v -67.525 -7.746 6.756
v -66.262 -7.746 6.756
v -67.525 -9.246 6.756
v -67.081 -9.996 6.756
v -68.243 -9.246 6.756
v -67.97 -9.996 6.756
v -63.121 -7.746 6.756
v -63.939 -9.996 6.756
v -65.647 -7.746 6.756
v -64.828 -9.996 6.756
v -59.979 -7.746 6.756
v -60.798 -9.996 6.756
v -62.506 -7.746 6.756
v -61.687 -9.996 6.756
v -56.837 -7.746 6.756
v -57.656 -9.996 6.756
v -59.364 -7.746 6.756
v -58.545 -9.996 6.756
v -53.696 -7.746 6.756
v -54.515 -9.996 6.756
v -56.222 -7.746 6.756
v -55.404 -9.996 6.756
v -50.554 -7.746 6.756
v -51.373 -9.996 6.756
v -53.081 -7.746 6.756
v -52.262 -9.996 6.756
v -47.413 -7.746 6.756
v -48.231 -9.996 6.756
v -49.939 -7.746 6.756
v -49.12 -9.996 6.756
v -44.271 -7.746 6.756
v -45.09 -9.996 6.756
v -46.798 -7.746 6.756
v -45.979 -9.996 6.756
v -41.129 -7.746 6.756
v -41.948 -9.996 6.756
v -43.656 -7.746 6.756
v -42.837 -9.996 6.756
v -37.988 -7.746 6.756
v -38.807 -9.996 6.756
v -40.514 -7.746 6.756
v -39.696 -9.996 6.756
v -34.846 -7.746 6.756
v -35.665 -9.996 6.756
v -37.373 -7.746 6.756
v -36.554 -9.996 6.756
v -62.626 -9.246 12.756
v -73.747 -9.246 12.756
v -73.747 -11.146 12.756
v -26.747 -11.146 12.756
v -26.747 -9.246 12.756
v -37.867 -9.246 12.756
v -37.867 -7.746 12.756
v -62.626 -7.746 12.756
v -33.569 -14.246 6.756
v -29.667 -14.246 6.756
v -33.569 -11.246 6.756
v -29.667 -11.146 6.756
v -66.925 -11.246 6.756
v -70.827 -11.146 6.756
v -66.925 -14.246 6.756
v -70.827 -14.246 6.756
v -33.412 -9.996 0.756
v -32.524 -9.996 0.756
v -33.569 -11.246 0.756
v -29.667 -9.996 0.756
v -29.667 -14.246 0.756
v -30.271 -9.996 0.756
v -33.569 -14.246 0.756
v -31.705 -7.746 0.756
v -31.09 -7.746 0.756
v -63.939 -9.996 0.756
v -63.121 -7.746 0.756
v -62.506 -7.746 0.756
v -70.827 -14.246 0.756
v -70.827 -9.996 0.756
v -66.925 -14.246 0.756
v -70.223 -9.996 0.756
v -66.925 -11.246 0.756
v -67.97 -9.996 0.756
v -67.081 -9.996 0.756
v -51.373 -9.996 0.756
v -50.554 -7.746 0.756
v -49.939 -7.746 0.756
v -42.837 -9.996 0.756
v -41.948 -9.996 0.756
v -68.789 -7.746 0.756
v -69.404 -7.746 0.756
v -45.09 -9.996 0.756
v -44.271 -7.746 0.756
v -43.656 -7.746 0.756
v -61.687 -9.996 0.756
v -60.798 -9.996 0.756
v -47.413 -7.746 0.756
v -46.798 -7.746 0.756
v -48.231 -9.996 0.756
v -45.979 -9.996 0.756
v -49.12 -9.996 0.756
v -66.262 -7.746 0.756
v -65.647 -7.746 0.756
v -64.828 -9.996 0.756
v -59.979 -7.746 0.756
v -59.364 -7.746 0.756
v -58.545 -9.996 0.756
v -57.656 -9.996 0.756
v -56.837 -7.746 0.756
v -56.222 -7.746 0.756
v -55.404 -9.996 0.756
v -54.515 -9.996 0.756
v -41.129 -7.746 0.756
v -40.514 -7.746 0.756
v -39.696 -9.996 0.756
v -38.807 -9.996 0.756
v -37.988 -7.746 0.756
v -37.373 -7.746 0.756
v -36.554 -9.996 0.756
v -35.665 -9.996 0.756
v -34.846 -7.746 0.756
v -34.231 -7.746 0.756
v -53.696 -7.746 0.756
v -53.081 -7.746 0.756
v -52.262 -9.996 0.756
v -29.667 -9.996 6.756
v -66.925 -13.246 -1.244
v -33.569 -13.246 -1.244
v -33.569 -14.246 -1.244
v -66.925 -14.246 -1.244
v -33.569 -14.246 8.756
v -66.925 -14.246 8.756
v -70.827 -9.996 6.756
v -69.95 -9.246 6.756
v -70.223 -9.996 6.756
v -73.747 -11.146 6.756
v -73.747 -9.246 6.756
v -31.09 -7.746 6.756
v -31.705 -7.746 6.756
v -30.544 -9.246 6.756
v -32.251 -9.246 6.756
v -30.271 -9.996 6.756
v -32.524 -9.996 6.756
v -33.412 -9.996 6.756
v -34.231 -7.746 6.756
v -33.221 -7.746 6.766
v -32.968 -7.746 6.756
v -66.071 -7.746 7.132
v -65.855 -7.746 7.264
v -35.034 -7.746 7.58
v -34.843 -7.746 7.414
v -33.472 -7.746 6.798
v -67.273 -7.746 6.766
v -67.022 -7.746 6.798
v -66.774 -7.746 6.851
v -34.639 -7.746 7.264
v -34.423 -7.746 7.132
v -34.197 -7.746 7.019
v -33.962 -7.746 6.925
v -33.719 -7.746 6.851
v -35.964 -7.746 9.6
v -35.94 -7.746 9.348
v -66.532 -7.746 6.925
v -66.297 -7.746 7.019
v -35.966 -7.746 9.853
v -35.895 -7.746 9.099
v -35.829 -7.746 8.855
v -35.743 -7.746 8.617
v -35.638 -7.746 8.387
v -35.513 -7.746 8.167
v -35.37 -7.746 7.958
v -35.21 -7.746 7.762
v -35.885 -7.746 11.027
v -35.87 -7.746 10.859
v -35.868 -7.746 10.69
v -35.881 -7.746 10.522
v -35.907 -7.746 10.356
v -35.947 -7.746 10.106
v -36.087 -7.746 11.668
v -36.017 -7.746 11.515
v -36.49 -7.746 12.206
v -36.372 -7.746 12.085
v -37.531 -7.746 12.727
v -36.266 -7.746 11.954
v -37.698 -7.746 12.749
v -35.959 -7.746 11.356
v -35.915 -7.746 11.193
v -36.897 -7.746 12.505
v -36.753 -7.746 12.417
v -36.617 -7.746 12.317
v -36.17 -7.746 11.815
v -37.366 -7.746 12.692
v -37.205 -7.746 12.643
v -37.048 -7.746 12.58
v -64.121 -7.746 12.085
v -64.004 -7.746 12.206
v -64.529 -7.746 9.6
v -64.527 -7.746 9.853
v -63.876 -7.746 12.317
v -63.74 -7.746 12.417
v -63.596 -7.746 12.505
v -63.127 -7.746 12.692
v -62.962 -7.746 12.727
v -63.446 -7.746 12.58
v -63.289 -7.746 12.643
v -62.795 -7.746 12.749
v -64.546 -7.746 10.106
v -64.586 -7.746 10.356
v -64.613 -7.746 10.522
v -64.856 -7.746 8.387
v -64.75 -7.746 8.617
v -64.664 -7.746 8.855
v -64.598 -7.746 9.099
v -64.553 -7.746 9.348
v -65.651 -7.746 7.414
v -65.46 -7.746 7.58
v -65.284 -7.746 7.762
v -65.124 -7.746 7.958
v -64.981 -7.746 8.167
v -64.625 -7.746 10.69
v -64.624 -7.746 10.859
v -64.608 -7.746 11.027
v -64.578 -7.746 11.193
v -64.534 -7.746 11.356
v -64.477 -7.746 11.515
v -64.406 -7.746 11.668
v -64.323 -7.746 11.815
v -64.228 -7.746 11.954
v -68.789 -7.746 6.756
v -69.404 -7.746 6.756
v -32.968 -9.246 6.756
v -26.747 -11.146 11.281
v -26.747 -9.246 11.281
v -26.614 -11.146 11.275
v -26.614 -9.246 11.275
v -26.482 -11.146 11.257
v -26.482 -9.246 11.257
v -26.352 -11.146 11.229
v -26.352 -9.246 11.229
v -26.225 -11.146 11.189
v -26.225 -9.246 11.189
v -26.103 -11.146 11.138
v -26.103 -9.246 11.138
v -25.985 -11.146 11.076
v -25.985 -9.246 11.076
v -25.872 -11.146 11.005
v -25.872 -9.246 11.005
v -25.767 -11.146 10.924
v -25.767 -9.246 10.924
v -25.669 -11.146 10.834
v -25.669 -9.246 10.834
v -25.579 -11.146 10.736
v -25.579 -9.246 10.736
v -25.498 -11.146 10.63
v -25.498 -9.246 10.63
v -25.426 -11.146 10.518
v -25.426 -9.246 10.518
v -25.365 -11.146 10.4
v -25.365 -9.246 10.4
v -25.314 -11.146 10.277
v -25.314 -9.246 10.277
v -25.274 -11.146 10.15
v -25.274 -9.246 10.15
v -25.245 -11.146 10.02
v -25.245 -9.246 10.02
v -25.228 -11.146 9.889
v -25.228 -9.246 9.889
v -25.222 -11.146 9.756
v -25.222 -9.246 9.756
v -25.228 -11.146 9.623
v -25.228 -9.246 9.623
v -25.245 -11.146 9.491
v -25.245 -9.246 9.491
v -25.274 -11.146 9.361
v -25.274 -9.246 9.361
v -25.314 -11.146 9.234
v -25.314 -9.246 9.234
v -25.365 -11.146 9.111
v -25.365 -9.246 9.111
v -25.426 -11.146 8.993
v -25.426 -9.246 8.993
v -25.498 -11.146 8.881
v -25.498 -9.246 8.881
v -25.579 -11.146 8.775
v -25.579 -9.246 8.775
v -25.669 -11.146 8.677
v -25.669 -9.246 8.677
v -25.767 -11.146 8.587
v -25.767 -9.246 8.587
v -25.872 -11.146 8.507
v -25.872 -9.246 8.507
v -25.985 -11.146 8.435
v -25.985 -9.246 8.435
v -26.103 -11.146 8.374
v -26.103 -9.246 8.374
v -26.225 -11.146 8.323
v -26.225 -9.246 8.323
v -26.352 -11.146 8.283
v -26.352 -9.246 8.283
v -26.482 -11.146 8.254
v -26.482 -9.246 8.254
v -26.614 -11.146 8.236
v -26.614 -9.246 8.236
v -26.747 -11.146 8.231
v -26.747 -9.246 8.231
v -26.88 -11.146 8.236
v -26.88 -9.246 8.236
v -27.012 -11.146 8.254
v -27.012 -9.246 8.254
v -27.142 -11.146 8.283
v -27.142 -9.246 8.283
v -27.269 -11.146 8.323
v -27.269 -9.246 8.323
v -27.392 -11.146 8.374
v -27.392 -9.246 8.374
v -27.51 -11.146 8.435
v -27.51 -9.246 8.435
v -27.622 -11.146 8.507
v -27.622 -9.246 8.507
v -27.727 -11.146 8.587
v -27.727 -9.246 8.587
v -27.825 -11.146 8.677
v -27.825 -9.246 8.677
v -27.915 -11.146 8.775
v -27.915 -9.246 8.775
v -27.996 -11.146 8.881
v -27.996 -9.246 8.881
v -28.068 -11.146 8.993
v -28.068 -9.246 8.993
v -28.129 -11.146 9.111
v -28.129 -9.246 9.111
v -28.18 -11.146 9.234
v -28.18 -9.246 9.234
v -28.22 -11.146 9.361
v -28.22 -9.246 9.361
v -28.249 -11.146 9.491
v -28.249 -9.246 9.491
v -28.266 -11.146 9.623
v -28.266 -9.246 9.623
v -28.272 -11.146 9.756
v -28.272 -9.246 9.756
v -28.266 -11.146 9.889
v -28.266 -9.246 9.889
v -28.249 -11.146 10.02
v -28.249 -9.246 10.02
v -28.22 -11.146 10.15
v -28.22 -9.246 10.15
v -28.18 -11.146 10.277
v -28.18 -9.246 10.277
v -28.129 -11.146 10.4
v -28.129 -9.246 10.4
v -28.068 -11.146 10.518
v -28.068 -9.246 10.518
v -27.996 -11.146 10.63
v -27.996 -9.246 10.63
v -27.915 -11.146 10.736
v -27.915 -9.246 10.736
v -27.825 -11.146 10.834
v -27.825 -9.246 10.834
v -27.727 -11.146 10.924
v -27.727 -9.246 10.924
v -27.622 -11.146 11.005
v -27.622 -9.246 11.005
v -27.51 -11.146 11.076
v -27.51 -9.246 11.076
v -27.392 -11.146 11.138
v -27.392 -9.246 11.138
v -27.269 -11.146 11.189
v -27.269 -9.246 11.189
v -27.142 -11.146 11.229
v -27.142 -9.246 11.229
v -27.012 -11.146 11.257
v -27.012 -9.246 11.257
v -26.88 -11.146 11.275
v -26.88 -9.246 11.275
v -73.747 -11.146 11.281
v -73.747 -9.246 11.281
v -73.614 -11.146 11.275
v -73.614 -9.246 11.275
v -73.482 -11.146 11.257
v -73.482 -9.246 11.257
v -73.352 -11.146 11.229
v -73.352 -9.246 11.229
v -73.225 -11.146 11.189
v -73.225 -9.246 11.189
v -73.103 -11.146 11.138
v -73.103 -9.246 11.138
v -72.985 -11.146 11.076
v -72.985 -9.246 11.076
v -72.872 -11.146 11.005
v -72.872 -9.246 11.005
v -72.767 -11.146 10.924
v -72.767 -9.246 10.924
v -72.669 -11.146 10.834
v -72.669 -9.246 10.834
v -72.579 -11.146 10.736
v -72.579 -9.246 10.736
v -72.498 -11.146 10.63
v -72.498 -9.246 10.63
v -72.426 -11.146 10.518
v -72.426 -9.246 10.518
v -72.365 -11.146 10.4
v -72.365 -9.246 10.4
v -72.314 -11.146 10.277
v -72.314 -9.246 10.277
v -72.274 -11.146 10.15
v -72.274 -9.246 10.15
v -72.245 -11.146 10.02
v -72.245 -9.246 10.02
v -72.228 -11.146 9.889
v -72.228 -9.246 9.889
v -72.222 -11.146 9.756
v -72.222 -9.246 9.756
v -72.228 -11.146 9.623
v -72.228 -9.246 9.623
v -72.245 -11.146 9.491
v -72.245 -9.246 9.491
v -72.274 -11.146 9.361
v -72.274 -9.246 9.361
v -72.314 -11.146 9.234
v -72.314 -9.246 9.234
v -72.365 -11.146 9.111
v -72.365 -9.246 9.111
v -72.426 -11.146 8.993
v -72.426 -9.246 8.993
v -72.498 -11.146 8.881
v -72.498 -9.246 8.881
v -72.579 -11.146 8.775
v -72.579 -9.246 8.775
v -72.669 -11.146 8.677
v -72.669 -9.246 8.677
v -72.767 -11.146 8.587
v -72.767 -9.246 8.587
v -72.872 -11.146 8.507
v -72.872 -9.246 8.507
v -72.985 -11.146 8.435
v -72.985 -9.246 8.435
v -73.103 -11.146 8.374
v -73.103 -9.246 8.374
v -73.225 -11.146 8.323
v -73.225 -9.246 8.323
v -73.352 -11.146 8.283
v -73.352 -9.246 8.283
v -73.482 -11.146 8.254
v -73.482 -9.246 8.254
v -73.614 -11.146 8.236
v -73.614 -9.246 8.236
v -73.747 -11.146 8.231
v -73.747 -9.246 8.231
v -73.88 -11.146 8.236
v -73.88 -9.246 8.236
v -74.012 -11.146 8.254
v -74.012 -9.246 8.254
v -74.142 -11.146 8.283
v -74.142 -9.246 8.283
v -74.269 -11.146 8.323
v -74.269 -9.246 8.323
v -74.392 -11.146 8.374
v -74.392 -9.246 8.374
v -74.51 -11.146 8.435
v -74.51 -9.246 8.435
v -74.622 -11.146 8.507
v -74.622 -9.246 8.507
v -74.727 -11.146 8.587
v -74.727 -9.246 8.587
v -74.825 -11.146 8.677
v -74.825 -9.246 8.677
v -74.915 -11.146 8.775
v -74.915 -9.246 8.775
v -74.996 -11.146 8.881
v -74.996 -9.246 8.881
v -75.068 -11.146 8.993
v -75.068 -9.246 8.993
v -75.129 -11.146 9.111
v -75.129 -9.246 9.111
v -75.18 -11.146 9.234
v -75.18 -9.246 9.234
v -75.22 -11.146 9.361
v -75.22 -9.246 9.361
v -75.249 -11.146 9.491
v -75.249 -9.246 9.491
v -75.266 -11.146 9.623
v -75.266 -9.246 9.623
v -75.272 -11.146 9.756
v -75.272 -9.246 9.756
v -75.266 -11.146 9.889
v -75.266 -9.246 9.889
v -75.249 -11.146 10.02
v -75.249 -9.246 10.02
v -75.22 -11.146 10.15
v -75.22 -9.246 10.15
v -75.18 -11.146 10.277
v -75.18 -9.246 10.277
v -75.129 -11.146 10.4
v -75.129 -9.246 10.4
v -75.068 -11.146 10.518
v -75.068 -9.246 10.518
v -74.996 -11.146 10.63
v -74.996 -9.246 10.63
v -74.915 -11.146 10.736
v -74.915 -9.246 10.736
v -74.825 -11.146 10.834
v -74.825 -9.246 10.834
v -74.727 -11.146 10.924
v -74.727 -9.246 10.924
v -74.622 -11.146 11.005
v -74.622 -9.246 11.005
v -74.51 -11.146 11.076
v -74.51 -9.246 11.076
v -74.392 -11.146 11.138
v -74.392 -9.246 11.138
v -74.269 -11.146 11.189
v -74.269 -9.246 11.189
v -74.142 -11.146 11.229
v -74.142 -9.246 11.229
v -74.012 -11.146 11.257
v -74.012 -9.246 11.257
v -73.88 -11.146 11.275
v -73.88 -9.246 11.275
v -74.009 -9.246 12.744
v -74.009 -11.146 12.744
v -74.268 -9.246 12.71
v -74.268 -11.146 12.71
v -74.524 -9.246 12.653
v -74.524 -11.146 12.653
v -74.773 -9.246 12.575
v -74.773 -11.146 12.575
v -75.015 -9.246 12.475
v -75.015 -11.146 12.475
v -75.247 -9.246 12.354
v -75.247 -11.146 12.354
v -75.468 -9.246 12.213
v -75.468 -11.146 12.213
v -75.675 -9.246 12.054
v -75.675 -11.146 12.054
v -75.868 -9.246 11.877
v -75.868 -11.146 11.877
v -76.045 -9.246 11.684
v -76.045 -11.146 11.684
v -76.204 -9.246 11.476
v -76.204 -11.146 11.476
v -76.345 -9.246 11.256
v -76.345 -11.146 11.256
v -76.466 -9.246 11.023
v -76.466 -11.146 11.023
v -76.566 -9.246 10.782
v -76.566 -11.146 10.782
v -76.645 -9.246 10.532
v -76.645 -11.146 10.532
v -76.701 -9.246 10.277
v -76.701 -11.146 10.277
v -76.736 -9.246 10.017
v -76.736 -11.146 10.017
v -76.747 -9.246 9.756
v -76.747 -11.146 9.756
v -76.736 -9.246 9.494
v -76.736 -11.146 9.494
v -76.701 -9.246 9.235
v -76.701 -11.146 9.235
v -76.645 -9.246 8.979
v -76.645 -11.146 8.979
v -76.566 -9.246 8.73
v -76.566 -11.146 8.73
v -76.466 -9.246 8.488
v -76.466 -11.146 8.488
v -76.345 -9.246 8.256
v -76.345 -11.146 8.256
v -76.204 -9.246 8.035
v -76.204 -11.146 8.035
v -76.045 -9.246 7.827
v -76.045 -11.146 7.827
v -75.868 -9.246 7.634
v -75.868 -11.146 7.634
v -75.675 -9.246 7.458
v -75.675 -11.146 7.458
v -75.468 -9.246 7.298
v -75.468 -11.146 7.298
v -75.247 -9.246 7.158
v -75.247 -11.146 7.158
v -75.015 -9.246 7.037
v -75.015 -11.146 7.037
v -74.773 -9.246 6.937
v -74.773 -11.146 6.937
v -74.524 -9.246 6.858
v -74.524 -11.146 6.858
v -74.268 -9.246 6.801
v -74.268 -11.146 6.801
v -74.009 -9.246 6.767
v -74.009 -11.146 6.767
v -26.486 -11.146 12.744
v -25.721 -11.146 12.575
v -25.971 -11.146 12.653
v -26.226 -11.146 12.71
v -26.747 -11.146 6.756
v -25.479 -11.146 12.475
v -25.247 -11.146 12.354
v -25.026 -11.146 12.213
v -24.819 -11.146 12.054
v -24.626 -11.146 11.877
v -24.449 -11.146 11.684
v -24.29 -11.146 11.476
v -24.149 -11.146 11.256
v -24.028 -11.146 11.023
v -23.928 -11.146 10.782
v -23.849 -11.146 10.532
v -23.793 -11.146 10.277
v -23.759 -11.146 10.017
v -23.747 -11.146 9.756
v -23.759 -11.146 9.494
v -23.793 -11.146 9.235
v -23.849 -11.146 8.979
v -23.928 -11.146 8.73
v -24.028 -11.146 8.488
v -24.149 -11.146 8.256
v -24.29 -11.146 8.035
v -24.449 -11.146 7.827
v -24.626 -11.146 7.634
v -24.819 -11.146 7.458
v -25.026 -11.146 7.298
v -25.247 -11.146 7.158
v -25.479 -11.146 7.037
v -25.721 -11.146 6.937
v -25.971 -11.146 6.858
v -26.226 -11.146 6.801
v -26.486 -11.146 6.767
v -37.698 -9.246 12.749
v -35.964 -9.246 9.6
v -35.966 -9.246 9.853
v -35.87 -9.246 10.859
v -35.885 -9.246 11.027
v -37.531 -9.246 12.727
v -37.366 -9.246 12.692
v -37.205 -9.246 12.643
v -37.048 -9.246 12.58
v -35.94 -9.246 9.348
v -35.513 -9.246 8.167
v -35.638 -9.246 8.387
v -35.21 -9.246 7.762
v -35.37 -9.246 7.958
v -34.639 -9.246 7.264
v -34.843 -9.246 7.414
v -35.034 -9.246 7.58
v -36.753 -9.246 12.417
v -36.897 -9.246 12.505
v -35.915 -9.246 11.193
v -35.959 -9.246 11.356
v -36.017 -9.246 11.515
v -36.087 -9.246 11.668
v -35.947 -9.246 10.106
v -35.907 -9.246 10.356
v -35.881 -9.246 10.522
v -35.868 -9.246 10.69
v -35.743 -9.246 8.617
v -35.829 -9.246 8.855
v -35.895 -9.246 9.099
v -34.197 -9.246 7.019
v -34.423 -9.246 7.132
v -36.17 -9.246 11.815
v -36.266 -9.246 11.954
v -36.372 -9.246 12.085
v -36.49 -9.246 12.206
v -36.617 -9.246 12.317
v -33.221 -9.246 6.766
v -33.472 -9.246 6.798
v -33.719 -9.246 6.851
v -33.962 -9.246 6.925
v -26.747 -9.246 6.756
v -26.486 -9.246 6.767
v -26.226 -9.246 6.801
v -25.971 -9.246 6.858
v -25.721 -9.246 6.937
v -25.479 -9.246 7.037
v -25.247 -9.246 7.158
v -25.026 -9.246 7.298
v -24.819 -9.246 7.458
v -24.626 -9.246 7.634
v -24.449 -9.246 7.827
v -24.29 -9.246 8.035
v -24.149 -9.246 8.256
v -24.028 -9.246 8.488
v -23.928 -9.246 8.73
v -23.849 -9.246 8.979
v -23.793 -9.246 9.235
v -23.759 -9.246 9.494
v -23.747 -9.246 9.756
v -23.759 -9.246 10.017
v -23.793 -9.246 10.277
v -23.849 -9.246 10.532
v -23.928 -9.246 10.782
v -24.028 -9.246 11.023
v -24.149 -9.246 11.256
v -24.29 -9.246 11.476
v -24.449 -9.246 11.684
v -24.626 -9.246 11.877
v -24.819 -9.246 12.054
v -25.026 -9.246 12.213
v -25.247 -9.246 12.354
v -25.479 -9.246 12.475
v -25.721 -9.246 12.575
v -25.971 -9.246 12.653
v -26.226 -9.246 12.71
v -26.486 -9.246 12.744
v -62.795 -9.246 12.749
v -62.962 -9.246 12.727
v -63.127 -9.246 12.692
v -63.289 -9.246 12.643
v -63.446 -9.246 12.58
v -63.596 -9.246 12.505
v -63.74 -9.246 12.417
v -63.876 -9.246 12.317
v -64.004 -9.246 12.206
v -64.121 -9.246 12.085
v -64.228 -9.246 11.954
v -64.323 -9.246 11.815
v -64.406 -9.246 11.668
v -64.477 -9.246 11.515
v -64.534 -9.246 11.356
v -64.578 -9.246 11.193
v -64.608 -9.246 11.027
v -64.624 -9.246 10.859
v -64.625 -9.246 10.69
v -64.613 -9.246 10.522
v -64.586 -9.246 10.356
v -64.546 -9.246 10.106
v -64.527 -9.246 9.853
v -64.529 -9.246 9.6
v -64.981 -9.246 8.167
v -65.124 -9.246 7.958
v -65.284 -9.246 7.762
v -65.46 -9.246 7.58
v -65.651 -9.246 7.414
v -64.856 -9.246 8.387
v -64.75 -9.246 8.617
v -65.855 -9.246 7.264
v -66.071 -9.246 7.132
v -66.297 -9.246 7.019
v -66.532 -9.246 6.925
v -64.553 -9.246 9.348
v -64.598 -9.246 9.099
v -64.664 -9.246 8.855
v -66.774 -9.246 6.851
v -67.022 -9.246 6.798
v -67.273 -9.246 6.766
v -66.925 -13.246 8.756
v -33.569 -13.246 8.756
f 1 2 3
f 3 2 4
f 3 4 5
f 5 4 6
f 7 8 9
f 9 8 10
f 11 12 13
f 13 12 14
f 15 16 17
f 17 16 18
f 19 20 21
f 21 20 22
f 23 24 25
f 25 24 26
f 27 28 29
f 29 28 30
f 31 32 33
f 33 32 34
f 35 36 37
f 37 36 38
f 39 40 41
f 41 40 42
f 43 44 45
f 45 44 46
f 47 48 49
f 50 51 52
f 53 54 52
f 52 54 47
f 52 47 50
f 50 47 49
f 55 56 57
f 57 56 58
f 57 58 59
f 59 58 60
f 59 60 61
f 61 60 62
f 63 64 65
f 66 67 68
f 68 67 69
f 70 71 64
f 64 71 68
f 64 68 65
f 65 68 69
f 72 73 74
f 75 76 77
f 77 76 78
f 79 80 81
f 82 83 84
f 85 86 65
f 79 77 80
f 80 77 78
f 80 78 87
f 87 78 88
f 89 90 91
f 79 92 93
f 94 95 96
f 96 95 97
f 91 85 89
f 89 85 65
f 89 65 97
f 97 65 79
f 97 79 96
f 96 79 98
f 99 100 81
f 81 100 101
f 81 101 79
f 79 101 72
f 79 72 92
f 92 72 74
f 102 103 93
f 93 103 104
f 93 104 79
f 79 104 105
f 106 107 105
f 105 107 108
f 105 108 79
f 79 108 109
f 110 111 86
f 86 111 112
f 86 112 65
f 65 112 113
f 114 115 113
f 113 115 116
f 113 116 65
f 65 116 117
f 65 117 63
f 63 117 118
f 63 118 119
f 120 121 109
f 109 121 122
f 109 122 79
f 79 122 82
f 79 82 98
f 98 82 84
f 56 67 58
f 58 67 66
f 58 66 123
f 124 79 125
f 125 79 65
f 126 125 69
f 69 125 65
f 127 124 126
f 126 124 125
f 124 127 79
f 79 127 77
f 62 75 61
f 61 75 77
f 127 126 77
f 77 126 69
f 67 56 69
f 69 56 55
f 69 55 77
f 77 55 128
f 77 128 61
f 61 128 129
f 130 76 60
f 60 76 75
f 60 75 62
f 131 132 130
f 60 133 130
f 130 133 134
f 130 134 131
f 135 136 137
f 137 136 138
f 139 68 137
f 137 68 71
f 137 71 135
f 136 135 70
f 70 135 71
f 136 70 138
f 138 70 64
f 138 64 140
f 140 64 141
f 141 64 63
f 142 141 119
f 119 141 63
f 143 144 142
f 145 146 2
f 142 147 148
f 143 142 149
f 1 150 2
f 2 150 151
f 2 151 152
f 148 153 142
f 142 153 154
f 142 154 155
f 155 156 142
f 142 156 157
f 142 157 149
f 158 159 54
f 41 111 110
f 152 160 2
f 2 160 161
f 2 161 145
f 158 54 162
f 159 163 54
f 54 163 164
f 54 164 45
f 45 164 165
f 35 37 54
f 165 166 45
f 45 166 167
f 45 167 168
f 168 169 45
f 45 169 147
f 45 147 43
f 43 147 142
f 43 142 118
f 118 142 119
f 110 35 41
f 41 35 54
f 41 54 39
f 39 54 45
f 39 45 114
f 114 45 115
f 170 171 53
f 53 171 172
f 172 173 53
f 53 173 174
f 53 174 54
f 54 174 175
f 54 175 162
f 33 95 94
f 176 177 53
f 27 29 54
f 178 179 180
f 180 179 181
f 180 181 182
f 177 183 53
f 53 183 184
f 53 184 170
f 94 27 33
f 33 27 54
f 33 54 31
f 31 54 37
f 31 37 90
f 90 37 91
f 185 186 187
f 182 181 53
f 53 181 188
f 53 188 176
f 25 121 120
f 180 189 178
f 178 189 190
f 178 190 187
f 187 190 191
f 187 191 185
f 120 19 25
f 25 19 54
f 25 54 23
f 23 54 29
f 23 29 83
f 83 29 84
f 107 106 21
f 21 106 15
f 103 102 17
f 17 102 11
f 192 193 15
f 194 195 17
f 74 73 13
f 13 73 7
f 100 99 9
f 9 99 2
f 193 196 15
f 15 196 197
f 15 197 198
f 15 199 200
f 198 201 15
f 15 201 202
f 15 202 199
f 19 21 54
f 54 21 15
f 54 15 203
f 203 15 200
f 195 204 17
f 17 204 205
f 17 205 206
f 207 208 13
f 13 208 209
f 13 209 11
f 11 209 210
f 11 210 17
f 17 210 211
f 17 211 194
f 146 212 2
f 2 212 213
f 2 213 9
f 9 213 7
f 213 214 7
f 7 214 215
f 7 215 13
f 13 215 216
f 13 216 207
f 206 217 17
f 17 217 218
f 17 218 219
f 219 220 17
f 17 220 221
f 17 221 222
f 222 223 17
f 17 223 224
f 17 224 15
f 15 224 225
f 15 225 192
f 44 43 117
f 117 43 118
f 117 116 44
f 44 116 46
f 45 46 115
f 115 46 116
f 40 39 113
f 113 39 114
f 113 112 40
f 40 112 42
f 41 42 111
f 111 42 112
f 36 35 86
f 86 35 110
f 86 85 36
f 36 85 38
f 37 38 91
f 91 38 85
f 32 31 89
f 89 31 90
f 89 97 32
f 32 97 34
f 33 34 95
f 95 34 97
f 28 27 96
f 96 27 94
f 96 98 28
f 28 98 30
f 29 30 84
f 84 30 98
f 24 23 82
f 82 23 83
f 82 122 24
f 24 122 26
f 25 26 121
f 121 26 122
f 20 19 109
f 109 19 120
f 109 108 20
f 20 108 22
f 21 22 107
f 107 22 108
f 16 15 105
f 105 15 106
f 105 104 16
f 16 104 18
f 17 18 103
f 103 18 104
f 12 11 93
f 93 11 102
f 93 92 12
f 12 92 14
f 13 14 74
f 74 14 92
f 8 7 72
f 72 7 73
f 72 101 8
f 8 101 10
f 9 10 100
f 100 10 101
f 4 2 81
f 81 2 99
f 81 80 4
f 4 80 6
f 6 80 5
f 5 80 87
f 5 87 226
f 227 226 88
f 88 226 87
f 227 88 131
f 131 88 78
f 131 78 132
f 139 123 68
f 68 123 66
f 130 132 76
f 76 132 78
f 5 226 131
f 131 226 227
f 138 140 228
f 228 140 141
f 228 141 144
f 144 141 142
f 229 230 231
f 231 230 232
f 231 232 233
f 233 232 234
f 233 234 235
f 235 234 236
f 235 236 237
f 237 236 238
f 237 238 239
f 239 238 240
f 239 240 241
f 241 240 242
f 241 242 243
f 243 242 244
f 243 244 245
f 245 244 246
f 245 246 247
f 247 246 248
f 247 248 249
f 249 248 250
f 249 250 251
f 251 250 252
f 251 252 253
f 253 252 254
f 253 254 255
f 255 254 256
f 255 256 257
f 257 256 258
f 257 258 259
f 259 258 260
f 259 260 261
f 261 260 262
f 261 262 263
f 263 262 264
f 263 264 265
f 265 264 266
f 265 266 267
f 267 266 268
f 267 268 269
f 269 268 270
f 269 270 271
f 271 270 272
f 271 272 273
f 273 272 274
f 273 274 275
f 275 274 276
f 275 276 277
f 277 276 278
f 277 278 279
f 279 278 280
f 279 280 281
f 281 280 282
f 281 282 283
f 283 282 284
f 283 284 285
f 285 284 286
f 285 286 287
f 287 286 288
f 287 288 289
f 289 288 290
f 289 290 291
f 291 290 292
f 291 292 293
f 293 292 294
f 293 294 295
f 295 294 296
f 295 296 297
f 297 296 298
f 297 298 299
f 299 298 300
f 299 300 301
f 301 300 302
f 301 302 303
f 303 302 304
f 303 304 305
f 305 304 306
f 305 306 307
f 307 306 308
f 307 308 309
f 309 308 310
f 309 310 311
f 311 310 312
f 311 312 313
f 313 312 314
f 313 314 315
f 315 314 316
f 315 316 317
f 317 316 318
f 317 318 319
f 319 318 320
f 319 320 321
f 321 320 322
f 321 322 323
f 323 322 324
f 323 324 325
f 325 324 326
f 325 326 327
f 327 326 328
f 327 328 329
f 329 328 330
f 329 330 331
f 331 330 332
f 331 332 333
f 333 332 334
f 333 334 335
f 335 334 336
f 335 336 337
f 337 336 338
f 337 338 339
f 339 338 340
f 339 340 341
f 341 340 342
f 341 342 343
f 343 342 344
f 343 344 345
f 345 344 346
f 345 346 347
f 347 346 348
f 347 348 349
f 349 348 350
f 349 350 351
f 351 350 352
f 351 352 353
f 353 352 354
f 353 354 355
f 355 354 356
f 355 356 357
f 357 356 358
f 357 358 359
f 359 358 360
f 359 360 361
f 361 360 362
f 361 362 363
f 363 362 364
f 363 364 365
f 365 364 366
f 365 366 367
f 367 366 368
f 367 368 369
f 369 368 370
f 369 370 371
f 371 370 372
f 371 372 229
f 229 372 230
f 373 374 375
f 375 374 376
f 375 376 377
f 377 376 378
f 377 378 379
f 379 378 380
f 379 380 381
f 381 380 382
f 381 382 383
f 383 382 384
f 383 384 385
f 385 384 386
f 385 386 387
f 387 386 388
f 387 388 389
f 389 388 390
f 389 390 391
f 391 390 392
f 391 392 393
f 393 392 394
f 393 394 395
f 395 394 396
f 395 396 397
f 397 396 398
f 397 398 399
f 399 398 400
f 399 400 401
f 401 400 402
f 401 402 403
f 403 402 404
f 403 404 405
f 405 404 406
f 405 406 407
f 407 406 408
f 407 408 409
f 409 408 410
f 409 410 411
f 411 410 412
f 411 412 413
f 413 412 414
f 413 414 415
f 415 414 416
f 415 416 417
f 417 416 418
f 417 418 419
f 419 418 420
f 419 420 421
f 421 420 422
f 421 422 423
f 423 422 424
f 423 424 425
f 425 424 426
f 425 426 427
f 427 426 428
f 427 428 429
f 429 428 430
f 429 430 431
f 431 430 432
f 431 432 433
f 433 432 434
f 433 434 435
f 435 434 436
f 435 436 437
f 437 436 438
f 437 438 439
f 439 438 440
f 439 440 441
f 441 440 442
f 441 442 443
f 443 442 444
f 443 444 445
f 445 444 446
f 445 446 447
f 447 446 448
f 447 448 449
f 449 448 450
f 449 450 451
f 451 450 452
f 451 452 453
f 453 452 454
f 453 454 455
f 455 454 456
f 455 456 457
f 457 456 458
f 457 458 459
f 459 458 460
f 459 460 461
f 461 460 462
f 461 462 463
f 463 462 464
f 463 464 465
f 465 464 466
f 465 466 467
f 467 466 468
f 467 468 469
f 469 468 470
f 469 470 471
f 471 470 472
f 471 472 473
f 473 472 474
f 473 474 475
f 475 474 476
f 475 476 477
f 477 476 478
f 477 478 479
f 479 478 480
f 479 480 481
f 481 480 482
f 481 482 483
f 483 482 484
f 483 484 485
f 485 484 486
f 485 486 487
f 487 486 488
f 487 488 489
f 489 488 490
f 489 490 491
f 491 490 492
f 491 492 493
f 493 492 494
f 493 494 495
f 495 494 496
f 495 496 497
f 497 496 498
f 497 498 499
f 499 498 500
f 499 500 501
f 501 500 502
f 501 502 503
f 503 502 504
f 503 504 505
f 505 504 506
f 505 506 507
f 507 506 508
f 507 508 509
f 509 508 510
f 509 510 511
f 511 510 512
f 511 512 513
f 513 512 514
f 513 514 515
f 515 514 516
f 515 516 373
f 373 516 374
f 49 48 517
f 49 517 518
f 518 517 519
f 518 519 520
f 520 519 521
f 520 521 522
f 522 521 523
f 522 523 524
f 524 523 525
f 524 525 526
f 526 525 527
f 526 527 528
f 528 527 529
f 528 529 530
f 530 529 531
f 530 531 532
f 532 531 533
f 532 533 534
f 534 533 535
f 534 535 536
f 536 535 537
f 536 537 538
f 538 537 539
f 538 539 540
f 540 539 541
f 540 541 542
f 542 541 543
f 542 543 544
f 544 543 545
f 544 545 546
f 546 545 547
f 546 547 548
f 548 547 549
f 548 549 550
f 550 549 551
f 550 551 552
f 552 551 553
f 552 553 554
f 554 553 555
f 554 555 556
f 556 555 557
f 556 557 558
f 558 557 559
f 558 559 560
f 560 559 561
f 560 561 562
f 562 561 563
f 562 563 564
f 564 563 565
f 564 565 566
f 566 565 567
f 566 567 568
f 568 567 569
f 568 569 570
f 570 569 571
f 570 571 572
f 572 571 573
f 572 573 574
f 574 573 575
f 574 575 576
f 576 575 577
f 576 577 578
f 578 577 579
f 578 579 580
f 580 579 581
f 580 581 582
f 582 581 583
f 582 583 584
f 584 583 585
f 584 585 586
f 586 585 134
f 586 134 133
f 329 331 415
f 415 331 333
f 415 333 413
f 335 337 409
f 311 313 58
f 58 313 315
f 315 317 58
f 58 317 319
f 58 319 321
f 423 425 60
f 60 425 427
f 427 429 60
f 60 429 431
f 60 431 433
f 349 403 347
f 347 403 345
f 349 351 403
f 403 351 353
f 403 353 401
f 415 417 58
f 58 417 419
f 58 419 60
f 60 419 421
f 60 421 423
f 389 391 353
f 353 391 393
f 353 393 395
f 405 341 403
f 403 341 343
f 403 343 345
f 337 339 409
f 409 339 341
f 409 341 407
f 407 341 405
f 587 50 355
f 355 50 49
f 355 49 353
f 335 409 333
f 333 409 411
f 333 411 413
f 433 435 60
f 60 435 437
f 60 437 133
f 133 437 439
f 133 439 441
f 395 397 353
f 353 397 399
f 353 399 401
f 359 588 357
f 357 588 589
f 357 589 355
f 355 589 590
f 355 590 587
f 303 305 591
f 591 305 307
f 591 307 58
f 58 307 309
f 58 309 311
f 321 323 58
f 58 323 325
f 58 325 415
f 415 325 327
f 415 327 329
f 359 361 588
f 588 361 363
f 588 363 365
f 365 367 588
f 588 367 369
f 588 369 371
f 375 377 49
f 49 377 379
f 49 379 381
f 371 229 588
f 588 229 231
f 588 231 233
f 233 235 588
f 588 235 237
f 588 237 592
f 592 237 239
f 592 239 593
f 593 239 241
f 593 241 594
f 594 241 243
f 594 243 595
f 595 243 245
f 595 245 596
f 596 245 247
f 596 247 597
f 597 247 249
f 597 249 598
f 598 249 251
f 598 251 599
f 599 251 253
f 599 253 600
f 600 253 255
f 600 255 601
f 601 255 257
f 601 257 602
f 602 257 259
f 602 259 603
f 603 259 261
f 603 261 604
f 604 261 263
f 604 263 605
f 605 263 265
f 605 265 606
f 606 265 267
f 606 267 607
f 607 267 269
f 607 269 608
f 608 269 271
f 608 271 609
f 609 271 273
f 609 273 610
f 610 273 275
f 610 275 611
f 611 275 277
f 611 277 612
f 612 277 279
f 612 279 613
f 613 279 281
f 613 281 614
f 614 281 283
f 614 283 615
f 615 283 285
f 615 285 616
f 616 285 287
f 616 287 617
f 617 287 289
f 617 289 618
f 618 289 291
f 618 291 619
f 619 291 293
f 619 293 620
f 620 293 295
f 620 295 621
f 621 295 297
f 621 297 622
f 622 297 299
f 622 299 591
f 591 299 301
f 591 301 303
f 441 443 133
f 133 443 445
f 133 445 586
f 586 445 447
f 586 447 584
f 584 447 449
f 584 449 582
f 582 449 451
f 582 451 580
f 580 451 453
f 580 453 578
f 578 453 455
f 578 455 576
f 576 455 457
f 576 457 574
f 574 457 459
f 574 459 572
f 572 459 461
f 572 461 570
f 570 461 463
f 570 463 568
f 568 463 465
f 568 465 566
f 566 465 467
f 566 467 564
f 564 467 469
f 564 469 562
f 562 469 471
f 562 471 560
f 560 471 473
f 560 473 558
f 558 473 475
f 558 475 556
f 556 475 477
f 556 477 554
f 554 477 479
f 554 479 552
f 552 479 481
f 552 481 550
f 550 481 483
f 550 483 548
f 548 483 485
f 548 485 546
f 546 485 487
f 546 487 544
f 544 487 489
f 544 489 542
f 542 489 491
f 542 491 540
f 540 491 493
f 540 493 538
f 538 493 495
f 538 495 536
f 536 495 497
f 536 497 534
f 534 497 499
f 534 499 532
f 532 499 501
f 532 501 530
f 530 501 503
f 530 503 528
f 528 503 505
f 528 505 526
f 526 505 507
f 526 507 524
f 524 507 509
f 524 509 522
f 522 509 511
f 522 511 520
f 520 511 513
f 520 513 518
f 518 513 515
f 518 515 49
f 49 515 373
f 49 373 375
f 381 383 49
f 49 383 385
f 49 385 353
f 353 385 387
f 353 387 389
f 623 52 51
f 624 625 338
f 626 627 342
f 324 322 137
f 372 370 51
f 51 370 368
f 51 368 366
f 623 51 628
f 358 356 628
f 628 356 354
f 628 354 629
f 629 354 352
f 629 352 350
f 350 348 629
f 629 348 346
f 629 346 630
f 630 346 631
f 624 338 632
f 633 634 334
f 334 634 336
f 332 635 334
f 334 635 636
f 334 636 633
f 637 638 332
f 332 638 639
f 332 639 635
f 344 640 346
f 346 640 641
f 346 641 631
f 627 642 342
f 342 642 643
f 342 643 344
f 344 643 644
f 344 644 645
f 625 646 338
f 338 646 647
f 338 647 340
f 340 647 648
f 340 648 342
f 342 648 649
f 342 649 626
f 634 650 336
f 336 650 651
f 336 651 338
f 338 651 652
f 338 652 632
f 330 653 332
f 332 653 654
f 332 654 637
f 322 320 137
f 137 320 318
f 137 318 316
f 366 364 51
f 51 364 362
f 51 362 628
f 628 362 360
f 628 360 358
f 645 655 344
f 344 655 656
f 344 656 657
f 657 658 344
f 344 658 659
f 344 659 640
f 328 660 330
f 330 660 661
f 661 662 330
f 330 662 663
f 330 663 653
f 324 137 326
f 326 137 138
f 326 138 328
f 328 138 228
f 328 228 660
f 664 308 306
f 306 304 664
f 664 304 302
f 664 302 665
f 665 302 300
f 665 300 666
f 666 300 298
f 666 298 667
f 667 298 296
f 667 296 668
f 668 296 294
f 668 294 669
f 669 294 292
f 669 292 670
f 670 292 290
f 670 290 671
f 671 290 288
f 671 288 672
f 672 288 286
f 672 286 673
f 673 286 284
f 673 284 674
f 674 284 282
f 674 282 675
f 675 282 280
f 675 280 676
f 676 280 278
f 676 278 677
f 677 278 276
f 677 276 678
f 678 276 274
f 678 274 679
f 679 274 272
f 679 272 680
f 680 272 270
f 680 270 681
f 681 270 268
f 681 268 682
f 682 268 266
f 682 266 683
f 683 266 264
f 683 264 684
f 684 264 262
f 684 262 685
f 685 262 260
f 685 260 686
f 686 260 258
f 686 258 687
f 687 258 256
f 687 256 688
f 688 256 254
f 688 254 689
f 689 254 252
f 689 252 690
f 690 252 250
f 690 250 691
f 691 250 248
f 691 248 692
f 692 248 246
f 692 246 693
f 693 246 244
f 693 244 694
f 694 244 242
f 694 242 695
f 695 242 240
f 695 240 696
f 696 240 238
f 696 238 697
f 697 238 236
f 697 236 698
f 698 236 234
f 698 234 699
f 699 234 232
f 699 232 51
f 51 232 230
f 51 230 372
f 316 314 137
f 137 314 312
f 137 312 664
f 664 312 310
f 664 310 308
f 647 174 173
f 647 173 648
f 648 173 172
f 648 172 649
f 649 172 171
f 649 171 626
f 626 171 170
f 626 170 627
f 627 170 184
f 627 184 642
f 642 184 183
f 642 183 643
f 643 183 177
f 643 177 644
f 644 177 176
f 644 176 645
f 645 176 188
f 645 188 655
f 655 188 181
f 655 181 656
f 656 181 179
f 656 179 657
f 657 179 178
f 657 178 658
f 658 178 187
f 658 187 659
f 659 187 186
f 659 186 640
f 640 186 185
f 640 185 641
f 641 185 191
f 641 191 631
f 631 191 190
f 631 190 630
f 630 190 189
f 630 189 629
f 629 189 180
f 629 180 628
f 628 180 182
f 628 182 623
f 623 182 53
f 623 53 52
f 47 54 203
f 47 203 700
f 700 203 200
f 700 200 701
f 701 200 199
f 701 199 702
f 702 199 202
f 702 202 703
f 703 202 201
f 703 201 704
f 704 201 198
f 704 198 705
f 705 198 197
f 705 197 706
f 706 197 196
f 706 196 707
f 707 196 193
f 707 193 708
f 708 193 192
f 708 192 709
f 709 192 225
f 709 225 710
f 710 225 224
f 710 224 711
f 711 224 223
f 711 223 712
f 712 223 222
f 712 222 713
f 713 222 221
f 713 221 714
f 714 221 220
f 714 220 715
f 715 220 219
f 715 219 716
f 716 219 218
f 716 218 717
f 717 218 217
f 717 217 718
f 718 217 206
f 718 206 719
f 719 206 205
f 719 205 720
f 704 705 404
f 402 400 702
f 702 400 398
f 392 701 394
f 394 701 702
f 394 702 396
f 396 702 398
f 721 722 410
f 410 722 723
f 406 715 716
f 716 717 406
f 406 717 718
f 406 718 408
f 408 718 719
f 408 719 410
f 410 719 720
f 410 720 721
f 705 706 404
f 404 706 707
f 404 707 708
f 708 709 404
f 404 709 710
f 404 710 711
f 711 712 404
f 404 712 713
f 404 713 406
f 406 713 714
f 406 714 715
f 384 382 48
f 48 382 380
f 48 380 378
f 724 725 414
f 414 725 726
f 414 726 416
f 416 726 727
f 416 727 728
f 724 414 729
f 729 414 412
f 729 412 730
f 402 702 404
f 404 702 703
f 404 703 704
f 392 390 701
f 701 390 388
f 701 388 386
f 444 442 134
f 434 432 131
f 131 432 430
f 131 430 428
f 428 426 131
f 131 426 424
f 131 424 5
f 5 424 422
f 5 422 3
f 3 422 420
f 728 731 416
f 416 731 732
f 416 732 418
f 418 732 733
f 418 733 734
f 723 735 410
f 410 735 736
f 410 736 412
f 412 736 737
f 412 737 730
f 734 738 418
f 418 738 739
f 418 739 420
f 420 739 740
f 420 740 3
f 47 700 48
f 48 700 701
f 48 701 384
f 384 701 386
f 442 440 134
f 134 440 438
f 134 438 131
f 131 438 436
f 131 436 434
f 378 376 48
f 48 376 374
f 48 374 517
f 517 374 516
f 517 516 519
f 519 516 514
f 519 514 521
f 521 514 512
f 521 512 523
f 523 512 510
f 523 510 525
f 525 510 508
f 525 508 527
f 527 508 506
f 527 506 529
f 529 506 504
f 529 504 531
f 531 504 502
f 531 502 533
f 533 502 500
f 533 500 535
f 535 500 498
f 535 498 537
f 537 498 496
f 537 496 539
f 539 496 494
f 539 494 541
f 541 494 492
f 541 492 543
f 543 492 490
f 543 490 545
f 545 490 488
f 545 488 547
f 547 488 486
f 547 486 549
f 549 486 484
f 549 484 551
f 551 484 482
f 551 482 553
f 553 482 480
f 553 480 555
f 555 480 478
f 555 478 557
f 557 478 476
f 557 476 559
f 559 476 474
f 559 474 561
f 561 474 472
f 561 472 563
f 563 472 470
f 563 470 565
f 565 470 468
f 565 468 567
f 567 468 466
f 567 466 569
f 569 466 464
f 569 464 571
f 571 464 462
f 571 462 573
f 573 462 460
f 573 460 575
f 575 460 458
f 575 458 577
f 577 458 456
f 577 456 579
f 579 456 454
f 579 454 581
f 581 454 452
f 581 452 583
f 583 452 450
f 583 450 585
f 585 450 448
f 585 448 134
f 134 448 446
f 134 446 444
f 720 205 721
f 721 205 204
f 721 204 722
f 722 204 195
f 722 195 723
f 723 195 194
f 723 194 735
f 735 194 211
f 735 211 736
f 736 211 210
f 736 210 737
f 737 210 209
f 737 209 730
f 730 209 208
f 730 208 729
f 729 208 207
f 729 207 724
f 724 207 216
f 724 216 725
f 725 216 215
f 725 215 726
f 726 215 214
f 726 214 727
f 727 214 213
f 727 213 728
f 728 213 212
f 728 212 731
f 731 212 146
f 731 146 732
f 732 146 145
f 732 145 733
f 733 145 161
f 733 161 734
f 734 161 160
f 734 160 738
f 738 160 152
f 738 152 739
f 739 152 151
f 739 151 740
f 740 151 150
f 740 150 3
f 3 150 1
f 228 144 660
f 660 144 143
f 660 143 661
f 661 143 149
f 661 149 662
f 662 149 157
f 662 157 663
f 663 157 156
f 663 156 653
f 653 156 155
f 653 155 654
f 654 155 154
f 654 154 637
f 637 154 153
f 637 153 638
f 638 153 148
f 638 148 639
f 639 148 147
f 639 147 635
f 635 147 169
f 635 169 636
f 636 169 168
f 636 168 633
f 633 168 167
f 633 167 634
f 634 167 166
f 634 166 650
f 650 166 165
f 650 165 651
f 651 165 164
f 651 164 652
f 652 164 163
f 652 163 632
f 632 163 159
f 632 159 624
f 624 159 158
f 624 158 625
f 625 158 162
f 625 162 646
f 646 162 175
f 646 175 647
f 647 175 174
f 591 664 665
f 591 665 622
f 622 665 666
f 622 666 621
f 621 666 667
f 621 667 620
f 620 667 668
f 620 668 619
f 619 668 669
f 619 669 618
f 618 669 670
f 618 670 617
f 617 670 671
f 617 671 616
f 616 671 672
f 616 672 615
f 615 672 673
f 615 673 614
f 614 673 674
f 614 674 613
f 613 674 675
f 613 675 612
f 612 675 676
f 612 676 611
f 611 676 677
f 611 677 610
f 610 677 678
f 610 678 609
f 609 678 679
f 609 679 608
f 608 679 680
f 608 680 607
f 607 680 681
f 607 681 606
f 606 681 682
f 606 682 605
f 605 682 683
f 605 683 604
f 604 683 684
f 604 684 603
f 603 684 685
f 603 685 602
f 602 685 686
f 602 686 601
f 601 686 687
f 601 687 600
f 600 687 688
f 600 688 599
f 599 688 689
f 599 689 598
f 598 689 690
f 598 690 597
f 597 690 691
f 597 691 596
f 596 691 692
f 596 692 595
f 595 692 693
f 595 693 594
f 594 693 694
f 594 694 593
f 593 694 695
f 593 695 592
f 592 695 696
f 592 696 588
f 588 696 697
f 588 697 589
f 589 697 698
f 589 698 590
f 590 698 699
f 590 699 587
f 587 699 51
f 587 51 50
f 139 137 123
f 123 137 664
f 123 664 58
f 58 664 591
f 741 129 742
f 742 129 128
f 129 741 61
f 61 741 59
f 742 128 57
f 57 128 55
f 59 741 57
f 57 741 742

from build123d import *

# Parameters (mm, degrees)
BOSS_EXTRUDE1_DEPTH              = 6
SKETCH4_W                        = 33.355842528
SKETCH4_H                        = 6
BOSS_EXTRUDE3_DEPTH              = 3
BOSS_EXTRUDE4_DEPTH              = 33.355842528
SKETCH17_W                       = 28.5
SKETCH17_H                       = 1.9
BOSS_EXTRUDE11_DEPTH             = 6
SKETCH18_R                       = 1.525
BOSS_EXTRUDE12_DEPTH             = 1.9
SKETCH20_W                       = 34.55751915
SKETCH20_H                       = 1.75
BOSS_EXTRUDE13_DEPTH             = 6
SKETCH21_R                       = 3
CUT_EXTRUDE3_DEPTH               = 1.75
FILLET2_START                    = -9.24613882
FILLET2_DEPTH                    = 1.75
BOSS_EXTRUDE14_REACH             = 49.223
SKETCH22_W                       = 6
SKETCH22_H                       = 3
BOSS_EXTRUDE14_DIRECTION_2_REACH = 49.223
SPLIT1_START                     = -66.92498259
SPLIT1_DEPTH                     = 33.355842528
SPLIT1_START_2                   = -11.14613882
SPLIT1_2_DEPTH                   = 3.65
SPLIT1_3_OUTLINE_R               = 1.525
SPLIT1_3_DEPTH                   = 1.9
SPLIT1_START_3                   = 6.755649514
SPLIT1_4_DEPTH                   = 6
SKETCH26_W                       = 6
SKETCH26_H                       = 2.5
CUT_EXTRUDE4_DEPTH               = 51.815209001
SKETCH27_W                       = 6
SKETCH27_H                       = 0.25
CUT_EXTRUDE5_DEPTH               = 80.093428855


with BuildPart() as part:
    # Sketch1 → Boss-Extrude1 (new body)
    with BuildSketch(Plane(origin=(0, 0, 0.755649514), x_dir=(-1, 0, 0), z_dir=(0, 0, -1))):
        Polygon((31.089725273, -5.24613882), (30.270792245, -7.49613882), (29.667061326, -7.49613882), (29.667061326, -11.24613882), (70.667061326, -11.24613882), (70.827061326, -11.24613882), (70.827061326, -7.49613882), (70.667061326, -7.49613882), (70.222625956, -7.49613882), (69.403692929, -5.24613882), (68.788837073, -5.24613882), (67.969904045, -7.49613882), (67.081033306, -7.49613882), (66.262100279, -5.24613882), (65.647244423, -5.24613882), (64.828311395, -7.49613882), (63.939440656, -7.49613882), (63.120507629, -5.24613882), (62.505651773, -5.24613882), (61.686718745, -7.49613882), (60.797848006, -7.49613882), (59.978914979, -5.24613882), (59.364059123, -5.24613882), (58.545126095, -7.49613882), (57.656255356, -7.49613882), (56.837322329, -5.24613882), (56.222466473, -5.24613882), (55.403533445, -7.49613882), (54.514662706, -7.49613882), (53.695729679, -5.24613882), (53.080873823, -5.24613882), (52.261940795, -7.49613882), (51.373070056, -7.49613882), (50.554137029, -5.24613882), (49.939281173, -5.24613882), (49.120348145, -7.49613882), (48.231477406, -7.49613882), (47.412544379, -5.24613882), (46.797688523, -5.24613882), (45.978755495, -7.49613882), (45.089884756, -7.49613882), (44.270951729, -5.24613882), (43.656095873, -5.24613882), (42.837162845, -7.49613882), (41.948292106, -7.49613882), (41.129359079, -5.24613882), (40.514503223, -5.24613882), (39.695570195, -7.49613882), (38.806699456, -7.49613882), (37.987766429, -5.24613882), (37.372910573, -5.24613882), (36.553977545, -7.49613882), (35.665106806, -7.49613882), (34.846173779, -5.24613882), (34.231317923, -5.24613882), (33.412384895, -7.49613882), (32.523514156, -7.49613882), (31.704581129, -5.24613882), align=None)
    extrude(amount=-BOSS_EXTRUDE1_DEPTH)

    # Sketch4 → Boss-Extrude3 (add)
    with BuildSketch(Plane.XZ.offset(11.24613882)):
        with Locations((-50.247061326, 3.755649514)):
            Rectangle(SKETCH4_W, SKETCH4_H)
    extrude(amount=BOSS_EXTRUDE3_DEPTH)

    # Sketch5 → Boss-Extrude4 (add)
    with BuildSketch(Plane.ZY.offset(66.92498259)):
        Polygon((0.755649514, -11.24613882), (-1.244350486, -13.24613882), (-1.244350486, -14.24613882), (0.755649514, -14.24613882), align=None)
        Polygon((8.755649514, -13.24613882), (8.755649514, -14.24613882), (6.755649514, -14.24613882), (6.755649514, -11.24613882), align=None)
    extrude(amount=-BOSS_EXTRUDE4_DEPTH)

    # Sketch17 → Boss-Extrude11 (add)
    with BuildSketch(Plane.XY.offset(6.755649514)):
        with Locations((-50.247061326, -10.19613882)):
            Rectangle(SKETCH17_W, SKETCH17_H)
    extrude(amount=BOSS_EXTRUDE11_DEPTH)

    # Sketch18 → Boss-Extrude12 (add)
    with BuildSketch(Plane(origin=(0, -9.24613882, 0), x_dir=(1, 0, 0), z_dir=(0, 1, 0))):
        with BuildLine():
            Line((-73.747061326, -6.755649514), (-26.747061326, -6.755649514))
            ThreePointArc((-26.747061326, -6.755649514), (-23.747061326, -9.755649514), (-26.747061326, -12.755649514))
            Line((-26.747061326, -12.755649514), (-73.747061326, -12.755649514))
            ThreePointArc((-73.747061326, -12.755649514), (-76.747061326, -9.755649514), (-73.747061326, -6.755649514))
        make_face()
        with Locations(Location((-73.747061326, -9.755649514, 0), (0, 0, 270))):
            Circle(SKETCH18_R, mode=Mode.SUBTRACT)
        with Locations(Location((-26.747061326, -9.755649514, 0), (0, 0, 270))):
            Circle(SKETCH18_R, mode=Mode.SUBTRACT)
    extrude(amount=-BOSS_EXTRUDE12_DEPTH)

    # Sketch20 → Boss-Extrude13 (add)
    with BuildSketch(Plane.XY.offset(6.755649514)):
        with Locations((-50.246709101, -8.37113882)):
            Rectangle(SKETCH20_W, SKETCH20_H)
    extrude(amount=BOSS_EXTRUDE13_DEPTH)

    # Sketch21 → Cut-Extrude3 (cut)
    with BuildSketch(Plane(origin=(0, -7.49613882, 0), x_dir=(1, 0, 0), z_dir=(0, 1, 0))):
        with Locations((-67.525468676, -9.755649514)):
            Circle(SKETCH21_R)
        with Locations((-32.967949526, -9.755649514)):
            Circle(SKETCH21_R)
    extrude(amount=-CUT_EXTRUDE3_DEPTH, mode=Mode.SUBTRACT)

    # Fillet2: read off the stored shape, not the designer's step
    # Fillet2 outline → Fillet2 (cut)
    with BuildSketch(Plane(origin=(0, 0, 0), x_dir=(1, 0, 0), z_dir=(0, 1, 0)).offset(FILLET2_START)):
        with BuildLine():
            ThreePointArc((-35.907337217, -10.355649514), (-36.317735672, -12.020560578), (-37.866929011, -12.755649514))
            Line((-37.866929011, -12.755649514), (-32.967949526, -12.755649514))
            ThreePointArc((-32.967949526, -12.755649514), (-34.865316122, -12.079439522), (-35.907337217, -10.355649514))
        make_face()
        with BuildLine():
            ThreePointArc((-62.62648919, -12.755649514), (-64.175682529, -12.020560579), (-64.586080984, -10.355649514))
            ThreePointArc((-64.586080984, -10.355649514), (-65.62810208, -12.079439522), (-67.525468676, -12.755649514))
            Line((-67.525468676, -12.755649514), (-62.62648919, -12.755649514))
        make_face()
    extrude(amount=FILLET2_DEPTH, mode=Mode.SUBTRACT)

    # Boss-Extrude14: up to this face of the body (flat: up to its plane)
    boss_extrude14_end = Plane(part.part.faces().sort_by_distance((-70.827061326, -9.37113882, 3.755649514))[0])
    # Sketch22 → Boss-Extrude14 (add, up to the picked face)
    with BuildSketch(Plane.ZY.offset(66.92498259), mode=Mode.PRIVATE) as boss_extrude14_sk1:
        with Locations((3.755649514, -12.74613882)):
            Rectangle(SKETCH22_W, SKETCH22_H)
    boss_extrude14_tool1 = split(extrude(boss_extrude14_sk1.sketch, amount=BOSS_EXTRUDE14_REACH, mode=Mode.PRIVATE), bisect_by=boss_extrude14_end, keep=Keep.BOTH, mode=Mode.PRIVATE)
    add(boss_extrude14_tool1.solids().sort_by(Axis((-66.924983, -12.746139, 3.75565), (-1, 0, 0)))[0])

    # Boss-Extrude14 direction 2: up to this face of the body (flat: up to its plane)
    boss_extrude14_direction_2_end = Plane(part.part.faces().sort_by_distance((-29.667061326, -9.37113882, 3.755649514))[0])
    # Sketch22 → Boss-Extrude14 direction 2 (add, up to the picked face)
    with BuildSketch(Plane.ZY.offset(66.92498259), mode=Mode.PRIVATE) as boss_extrude14_direction_2_sk1:
        with Locations((3.755649514, -12.74613882)):
            Rectangle(SKETCH22_W, SKETCH22_H)
    boss_extrude14_direction_2_tool1 = split(extrude(boss_extrude14_direction_2_sk1.sketch, amount=-BOSS_EXTRUDE14_DIRECTION_2_REACH, mode=Mode.PRIVATE), bisect_by=boss_extrude14_direction_2_end, keep=Keep.BOTH, mode=Mode.PRIVATE)
    add(boss_extrude14_direction_2_tool1.solids().sort_by(Axis((-66.924983, -12.746139, 3.75565), (1, 0, 0)))[0])

    # Split1 4 outline → Split1 4 (cut)
    with BuildSketch(Plane.XY.offset(SPLIT1_START_3)):
        Polygon((-66.92498259, -14.24613882), (-33.569140062, -14.24613882), (-33.569140062, -11.14613882), (-22, -11.14613882), (-22, -7.49613882), (-78, -7.49613882), (-78, -11.14613882), (-66.92498259, -11.14613882), align=None)
    extrude(amount=SPLIT1_4_DEPTH, mode=Mode.SUBTRACT)

    # Sketch26 → Cut-Extrude4 (cut, through all)
    with BuildSketch(Plane(origin=(-29.667061326, 0, 0), x_dir=(0, 0, -1), z_dir=(1, 0, 0))):
        with Locations((-3.755649514, -9.24613882)):
            Rectangle(SKETCH26_W, SKETCH26_H)
    extrude(amount=-CUT_EXTRUDE4_DEPTH, mode=Mode.SUBTRACT)


with BuildPart() as body_2:
    # Split1: read off the stored shape, not the designer's step
    # Split1 outline → Split1 (new body)
    with BuildSketch(Plane.YZ.offset(SPLIT1_START)):
        Polygon((-14.24613882, 8.755649514), (-14.24613882, 6.755649514), (-11.24613882, 6.755649514), (-13.24613882, 8.755649514), align=None)
    extrude(amount=SPLIT1_DEPTH)


with BuildPart() as body_3:
    # Split1 2 outline → Split1 2 (new body)
    with BuildSketch(Plane(origin=(0, 0, 0), x_dir=(1, 0, 0), z_dir=(0, 1, 0)).offset(SPLIT1_START_2)):
        with BuildLine():
            Line((-32.967949526, -6.755649514), (-67.525468676, -6.755649514))
            ThreePointArc((-67.525468676, -6.755649514), (-65.201678668, -7.858282918), (-64.586080984, -10.355649514))
            ThreePointArc((-64.586080984, -10.355649514), (-64.175682529, -12.020560579), (-62.62648919, -12.755649514))
            Line((-62.62648919, -12.755649514), (-37.866929011, -12.755649514))
            ThreePointArc((-37.866929011, -12.755649514), (-36.317735672, -12.020560578), (-35.907337217, -10.355649514))
            ThreePointArc((-35.907337217, -10.355649514), (-35.291739533, -7.858282918), (-32.967949526, -6.755649514))
        make_face()
    extrude(amount=SPLIT1_2_DEPTH)

    # Split1 3 outline → Split1 3 (add)
    # profile 1 of 2: a face of its own
    with BuildSketch(Plane(origin=(0, 0, 0), x_dir=(1, 0, 0), z_dir=(0, 1, 0)).offset(SPLIT1_START_2)):
        with BuildLine():
            Line((-67.525468676, -6.755649514), (-73.747061326, -6.755649514))
            ThreePointArc((-73.747061326, -6.755649514), (-76.747061326, -9.755649514), (-73.747061326, -12.755649514))
            Line((-73.747061326, -12.755649514), (-62.62648919, -12.755649514))
            ThreePointArc((-62.62648919, -12.755649514), (-64.175682529, -12.020560579), (-64.586080984, -10.355649514))
            ThreePointArc((-64.586080984, -10.355649514), (-65.201678668, -7.858282918), (-67.525468676, -6.755649514))
        make_face()
        with Locations((-73.747061326, -9.755649514)):
            Circle(SPLIT1_3_OUTLINE_R, mode=Mode.SUBTRACT)
    # profile 2 of 2: a face of its own
    with BuildSketch(Plane(origin=(0, 0, 0), x_dir=(1, 0, 0), z_dir=(0, 1, 0)).offset(SPLIT1_START_2)):
        with BuildLine():
            Line((-26.747061326, -6.755649514), (-32.967949526, -6.755649514))
            ThreePointArc((-32.967949526, -6.755649514), (-35.291739533, -7.858282918), (-35.907337217, -10.355649514))
            ThreePointArc((-35.907337217, -10.355649514), (-36.317735672, -12.020560578), (-37.866929011, -12.755649514))
            Line((-37.866929011, -12.755649514), (-26.747061326, -12.755649514))
            ThreePointArc((-26.747061326, -12.755649514), (-23.747061326, -9.755649514), (-26.747061326, -6.755649514))
        make_face()
        with Locations((-26.747061326, -9.755649514)):
            Circle(SPLIT1_3_OUTLINE_R, mode=Mode.SUBTRACT)
    extrude(amount=SPLIT1_3_DEPTH)


with BuildPart() as cut_extrude4_piece_1:
    # of the separate pieces the step leaves, piece 1, a body of its own (cut_extrude4_pieces)
    add(part.part.solids().sort_by_distance((-29.667061326, -10.49613882, 0.755649514))[0])


with BuildPart() as cut_extrude4_piece_2:
    # of the separate pieces the step leaves, piece 2, a body of its own (cut_extrude4_pieces)
    add(part.part.solids().sort_by_distance((-31.089725273, -5.24613882, 0.755649514))[0])


with BuildPart() as cut_extrude4_piece_2_1:
    # Body-Move/Copy1: read off the stored shape, not the designer's step
    # Body-Move/Copy1: moved
    add(cut_extrude4_piece_2.part.moved(Location((0, -2.5, 0))))


with BuildPart() as cut_extrude4_piece_1_1:
    add(cut_extrude4_piece_1.part)

    # Combine1: union Cut-Extrude4 piece 2, body 3, body 2
    add(cut_extrude4_piece_2_1.part)
    add(body_3.part)
    add(body_2.part)

    # Sketch27 → Cut-Extrude5 (cut, through all)
    with BuildSketch(Plane(origin=(0, 0, 0), x_dir=(0, 0, -1), z_dir=(1, 0, 0))):
        with Locations((-9.755649514, -7.62113882)):
            Rectangle(SKETCH27_W, SKETCH27_H)
    extrude(amount=-CUT_EXTRUDE5_DEPTH, mode=Mode.SUBTRACT)


solid = cut_extrude4_piece_1_1.part
